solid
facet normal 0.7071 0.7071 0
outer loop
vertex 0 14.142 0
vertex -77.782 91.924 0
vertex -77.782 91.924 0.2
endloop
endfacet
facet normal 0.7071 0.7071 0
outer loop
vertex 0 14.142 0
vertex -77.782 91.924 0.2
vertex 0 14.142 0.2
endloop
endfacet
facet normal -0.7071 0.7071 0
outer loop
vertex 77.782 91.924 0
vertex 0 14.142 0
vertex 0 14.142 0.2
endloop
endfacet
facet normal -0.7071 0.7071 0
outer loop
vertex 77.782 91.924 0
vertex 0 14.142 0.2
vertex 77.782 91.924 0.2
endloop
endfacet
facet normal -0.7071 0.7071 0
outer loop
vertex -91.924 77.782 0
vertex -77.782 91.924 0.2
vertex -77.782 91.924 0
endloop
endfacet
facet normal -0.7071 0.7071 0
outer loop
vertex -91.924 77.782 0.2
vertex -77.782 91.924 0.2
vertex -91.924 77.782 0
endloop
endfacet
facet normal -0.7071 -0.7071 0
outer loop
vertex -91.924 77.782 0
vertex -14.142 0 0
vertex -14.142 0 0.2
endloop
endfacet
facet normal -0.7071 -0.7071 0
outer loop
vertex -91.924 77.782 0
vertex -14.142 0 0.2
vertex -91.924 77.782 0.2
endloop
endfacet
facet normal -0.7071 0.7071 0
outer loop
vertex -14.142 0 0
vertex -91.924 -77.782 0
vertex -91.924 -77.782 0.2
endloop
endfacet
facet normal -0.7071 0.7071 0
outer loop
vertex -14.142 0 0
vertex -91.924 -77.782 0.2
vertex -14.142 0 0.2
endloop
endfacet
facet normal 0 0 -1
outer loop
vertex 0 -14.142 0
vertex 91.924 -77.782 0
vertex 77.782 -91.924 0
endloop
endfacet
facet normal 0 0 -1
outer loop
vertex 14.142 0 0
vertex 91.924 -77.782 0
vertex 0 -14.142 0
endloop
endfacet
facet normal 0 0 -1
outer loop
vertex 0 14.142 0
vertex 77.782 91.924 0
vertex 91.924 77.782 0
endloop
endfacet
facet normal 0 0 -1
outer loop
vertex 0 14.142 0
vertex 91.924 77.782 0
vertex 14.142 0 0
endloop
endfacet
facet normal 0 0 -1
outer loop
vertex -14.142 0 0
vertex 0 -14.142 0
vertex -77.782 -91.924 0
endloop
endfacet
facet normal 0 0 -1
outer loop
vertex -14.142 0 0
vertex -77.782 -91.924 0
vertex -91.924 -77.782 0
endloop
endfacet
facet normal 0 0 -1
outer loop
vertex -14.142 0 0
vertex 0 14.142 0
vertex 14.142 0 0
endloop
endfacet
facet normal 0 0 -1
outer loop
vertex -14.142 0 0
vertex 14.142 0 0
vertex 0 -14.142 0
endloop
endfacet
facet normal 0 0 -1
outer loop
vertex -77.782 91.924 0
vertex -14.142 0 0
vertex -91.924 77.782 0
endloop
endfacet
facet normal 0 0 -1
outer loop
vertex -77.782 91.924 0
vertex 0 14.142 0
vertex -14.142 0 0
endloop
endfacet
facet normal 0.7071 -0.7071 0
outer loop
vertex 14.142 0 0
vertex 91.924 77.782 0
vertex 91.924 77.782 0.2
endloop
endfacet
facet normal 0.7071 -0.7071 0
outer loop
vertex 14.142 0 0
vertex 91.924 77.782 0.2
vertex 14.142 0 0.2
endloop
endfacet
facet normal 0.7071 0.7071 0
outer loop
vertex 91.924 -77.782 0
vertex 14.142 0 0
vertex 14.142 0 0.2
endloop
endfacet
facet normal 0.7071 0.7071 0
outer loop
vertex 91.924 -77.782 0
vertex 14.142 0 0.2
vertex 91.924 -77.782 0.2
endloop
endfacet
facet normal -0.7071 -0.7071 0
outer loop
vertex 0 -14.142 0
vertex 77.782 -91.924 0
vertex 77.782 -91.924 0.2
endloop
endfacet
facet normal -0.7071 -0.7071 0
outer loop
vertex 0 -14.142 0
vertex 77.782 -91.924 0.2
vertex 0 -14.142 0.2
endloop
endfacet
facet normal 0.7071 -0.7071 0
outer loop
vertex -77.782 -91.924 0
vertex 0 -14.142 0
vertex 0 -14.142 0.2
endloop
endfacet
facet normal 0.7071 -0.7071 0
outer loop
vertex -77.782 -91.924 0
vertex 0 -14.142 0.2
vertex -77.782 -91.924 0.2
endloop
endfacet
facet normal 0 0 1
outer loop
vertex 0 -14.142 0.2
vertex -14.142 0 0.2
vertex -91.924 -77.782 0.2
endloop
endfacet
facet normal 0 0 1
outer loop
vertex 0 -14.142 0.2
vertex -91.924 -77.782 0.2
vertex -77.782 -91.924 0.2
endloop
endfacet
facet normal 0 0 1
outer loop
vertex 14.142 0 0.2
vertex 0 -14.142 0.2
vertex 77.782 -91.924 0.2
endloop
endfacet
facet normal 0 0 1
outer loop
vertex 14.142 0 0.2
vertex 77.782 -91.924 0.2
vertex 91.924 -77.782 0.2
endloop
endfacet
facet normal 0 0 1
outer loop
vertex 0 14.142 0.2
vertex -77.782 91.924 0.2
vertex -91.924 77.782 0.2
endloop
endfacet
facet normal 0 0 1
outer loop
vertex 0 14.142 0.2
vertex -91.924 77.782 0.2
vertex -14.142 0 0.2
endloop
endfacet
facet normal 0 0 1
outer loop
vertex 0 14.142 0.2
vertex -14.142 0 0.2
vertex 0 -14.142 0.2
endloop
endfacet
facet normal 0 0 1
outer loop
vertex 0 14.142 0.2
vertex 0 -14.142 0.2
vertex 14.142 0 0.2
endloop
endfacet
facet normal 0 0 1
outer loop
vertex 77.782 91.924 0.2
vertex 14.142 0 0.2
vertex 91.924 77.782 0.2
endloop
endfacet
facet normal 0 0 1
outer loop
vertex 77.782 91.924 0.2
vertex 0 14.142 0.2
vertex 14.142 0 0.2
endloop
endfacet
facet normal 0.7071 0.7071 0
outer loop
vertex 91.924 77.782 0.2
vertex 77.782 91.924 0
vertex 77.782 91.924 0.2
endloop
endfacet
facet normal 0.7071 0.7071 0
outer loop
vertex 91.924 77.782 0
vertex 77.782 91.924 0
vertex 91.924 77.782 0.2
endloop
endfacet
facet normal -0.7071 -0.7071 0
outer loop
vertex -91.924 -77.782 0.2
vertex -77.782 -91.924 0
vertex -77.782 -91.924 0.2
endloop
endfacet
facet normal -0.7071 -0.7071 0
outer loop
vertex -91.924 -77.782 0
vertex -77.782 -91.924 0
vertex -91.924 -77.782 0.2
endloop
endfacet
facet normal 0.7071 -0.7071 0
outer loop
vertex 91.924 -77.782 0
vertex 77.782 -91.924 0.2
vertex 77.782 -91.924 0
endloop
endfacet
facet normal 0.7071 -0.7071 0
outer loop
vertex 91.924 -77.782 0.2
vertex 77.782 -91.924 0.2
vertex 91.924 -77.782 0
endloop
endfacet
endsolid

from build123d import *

# Parameters (mm, degrees)
PAD_DEPTH          = 0.2
POLARPATTERN_COUNT = 4


with BuildPart() as part:
    # Sketch → Pad (new body)
    with BuildSketch(Plane(origin=(0, 0, 0), x_dir=(0.707107, 0.707107, 0), z_dir=(0, 0, 1))):
        Polygon((0, 120), (10, 120), (10, 10), (120, 10), (120, 0), (0, 0), align=None)
    pad = extrude(amount=PAD_DEPTH)

    # PolarPattern: Pad ×4 about axis
    polarpattern_axis = Axis((0, 0, 0), (0, 0, 1))
    for i in range(1, POLARPATTERN_COUNT):
        add(pad.rotate(polarpattern_axis, i * 360 / POLARPATTERN_COUNT))


solid = part.part
